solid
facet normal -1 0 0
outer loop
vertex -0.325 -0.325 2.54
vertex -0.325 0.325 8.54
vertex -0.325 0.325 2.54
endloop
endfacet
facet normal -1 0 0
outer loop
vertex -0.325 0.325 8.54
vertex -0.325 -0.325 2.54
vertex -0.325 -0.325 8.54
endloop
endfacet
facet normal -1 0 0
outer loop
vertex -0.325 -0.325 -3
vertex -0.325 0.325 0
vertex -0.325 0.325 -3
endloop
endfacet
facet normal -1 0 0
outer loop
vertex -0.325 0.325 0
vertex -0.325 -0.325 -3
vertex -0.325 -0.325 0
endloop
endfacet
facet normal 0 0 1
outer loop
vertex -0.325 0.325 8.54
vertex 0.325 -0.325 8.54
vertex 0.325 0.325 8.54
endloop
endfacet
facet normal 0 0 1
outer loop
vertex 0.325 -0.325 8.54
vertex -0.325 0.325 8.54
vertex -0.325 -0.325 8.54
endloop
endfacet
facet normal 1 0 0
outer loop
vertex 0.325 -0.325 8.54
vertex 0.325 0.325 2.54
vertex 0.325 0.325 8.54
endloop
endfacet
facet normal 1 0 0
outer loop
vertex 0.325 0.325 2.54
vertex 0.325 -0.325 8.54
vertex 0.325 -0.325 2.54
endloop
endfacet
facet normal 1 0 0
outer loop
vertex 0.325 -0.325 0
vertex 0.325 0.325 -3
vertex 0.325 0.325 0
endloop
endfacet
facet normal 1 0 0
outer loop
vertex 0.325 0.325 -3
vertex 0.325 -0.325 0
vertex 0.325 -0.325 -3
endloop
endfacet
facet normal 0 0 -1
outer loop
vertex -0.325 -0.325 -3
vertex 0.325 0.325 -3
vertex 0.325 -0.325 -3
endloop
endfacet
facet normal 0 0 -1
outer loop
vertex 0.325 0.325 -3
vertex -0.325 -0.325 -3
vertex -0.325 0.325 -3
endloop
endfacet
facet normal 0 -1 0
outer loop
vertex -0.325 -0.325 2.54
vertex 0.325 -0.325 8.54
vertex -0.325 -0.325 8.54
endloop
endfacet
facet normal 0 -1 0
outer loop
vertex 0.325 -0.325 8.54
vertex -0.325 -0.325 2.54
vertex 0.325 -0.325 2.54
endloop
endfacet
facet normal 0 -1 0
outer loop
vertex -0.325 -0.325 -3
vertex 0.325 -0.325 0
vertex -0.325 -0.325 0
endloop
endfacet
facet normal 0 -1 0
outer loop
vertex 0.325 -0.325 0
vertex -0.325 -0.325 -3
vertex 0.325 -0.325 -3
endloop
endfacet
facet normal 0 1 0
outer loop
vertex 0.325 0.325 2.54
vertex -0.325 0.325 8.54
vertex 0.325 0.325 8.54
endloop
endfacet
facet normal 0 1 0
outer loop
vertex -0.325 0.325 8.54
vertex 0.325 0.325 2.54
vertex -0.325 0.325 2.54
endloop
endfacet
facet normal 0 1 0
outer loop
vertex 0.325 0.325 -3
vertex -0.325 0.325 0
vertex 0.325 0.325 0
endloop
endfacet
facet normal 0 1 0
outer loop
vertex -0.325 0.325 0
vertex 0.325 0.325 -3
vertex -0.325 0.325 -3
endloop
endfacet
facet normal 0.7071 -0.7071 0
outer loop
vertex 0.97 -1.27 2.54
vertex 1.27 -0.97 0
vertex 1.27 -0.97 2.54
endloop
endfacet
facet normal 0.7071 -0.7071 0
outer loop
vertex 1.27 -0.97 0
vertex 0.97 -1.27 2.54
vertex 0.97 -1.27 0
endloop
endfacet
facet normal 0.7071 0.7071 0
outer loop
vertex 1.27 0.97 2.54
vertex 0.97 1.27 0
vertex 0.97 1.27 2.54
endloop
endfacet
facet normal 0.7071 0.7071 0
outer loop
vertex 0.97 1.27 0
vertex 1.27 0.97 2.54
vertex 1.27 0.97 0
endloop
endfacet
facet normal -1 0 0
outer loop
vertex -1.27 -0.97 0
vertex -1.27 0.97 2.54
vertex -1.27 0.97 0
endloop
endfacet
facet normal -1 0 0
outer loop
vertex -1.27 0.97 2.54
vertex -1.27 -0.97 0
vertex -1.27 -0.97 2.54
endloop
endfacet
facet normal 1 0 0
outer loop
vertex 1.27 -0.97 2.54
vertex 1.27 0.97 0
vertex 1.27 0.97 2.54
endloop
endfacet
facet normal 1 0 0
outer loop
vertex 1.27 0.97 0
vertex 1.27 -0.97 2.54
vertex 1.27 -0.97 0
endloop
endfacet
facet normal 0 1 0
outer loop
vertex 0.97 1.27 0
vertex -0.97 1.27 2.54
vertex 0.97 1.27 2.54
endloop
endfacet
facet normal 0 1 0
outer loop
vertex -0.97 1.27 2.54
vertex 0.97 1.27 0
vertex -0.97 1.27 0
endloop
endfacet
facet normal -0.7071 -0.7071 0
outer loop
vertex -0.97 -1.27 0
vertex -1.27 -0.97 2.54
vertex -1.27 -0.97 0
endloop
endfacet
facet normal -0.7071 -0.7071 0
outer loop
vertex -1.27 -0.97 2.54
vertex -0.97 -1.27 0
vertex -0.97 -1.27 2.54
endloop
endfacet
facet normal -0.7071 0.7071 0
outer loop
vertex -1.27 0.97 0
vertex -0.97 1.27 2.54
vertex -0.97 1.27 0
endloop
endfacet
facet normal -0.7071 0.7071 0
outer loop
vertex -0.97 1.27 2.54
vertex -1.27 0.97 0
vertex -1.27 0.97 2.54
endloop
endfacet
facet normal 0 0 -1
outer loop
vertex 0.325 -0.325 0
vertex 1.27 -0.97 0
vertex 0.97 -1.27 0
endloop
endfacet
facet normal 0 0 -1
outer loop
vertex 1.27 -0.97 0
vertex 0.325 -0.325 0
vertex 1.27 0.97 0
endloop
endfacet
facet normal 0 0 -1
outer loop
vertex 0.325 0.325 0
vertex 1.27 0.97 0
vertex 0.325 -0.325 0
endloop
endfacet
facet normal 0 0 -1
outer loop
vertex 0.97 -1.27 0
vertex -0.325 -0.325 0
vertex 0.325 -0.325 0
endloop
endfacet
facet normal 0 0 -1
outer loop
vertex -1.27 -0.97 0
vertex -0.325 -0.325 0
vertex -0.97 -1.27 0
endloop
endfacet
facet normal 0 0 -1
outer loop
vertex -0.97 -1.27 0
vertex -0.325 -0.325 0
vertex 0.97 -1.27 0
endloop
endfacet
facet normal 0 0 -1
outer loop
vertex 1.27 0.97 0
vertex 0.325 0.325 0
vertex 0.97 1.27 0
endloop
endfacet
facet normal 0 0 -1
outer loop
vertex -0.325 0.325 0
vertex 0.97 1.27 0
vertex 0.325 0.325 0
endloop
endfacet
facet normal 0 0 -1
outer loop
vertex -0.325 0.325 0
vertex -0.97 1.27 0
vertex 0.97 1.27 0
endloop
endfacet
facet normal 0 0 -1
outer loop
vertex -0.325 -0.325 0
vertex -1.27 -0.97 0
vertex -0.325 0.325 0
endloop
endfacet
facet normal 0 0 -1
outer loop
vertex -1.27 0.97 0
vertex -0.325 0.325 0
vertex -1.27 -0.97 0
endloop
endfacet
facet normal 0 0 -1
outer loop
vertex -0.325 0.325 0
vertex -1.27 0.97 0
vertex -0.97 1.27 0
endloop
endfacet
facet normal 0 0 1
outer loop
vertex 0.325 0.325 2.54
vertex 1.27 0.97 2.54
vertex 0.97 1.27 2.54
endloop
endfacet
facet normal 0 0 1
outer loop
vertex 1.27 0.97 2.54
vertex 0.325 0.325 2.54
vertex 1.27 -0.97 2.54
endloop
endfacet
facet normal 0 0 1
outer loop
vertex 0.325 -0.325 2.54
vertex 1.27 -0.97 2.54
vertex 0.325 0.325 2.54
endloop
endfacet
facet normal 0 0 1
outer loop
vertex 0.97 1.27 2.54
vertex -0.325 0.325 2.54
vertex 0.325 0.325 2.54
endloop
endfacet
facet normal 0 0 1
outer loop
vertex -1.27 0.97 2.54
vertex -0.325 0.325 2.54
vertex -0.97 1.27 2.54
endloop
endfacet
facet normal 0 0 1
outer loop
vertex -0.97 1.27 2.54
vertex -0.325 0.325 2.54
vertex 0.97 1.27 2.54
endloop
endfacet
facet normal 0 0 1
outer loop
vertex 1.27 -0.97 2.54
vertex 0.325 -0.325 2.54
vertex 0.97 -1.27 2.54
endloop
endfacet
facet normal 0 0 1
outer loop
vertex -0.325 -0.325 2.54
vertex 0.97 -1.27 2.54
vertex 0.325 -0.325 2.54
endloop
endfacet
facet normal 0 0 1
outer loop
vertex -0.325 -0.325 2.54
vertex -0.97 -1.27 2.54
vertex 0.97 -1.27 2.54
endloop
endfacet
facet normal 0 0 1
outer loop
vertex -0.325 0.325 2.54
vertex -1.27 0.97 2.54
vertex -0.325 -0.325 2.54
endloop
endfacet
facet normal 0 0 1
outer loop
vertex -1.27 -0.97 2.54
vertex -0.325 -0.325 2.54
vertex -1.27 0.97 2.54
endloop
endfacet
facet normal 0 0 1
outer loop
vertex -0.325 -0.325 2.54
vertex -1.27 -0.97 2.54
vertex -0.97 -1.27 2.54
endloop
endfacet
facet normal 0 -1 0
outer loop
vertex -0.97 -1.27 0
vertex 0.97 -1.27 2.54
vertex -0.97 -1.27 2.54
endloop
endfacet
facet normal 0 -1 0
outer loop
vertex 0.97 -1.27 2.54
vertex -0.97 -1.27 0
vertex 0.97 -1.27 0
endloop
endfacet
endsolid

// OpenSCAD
union()
{
	translate([-0.325,-0.325,-3])
		cube([0.65,0.65,11.54]);
    linear_extrude(2.54)
        polygon(points=[[-0.97,-1.27],[0.97,-1.27],[1.27,-0.97],[1.27,0.97],[0.97,1.27],[-0.97,1.27],[-1.27,0.97],[-1.27,-0.97]], paths=[[0,1,2,3,4,5,6,7]]);
}
